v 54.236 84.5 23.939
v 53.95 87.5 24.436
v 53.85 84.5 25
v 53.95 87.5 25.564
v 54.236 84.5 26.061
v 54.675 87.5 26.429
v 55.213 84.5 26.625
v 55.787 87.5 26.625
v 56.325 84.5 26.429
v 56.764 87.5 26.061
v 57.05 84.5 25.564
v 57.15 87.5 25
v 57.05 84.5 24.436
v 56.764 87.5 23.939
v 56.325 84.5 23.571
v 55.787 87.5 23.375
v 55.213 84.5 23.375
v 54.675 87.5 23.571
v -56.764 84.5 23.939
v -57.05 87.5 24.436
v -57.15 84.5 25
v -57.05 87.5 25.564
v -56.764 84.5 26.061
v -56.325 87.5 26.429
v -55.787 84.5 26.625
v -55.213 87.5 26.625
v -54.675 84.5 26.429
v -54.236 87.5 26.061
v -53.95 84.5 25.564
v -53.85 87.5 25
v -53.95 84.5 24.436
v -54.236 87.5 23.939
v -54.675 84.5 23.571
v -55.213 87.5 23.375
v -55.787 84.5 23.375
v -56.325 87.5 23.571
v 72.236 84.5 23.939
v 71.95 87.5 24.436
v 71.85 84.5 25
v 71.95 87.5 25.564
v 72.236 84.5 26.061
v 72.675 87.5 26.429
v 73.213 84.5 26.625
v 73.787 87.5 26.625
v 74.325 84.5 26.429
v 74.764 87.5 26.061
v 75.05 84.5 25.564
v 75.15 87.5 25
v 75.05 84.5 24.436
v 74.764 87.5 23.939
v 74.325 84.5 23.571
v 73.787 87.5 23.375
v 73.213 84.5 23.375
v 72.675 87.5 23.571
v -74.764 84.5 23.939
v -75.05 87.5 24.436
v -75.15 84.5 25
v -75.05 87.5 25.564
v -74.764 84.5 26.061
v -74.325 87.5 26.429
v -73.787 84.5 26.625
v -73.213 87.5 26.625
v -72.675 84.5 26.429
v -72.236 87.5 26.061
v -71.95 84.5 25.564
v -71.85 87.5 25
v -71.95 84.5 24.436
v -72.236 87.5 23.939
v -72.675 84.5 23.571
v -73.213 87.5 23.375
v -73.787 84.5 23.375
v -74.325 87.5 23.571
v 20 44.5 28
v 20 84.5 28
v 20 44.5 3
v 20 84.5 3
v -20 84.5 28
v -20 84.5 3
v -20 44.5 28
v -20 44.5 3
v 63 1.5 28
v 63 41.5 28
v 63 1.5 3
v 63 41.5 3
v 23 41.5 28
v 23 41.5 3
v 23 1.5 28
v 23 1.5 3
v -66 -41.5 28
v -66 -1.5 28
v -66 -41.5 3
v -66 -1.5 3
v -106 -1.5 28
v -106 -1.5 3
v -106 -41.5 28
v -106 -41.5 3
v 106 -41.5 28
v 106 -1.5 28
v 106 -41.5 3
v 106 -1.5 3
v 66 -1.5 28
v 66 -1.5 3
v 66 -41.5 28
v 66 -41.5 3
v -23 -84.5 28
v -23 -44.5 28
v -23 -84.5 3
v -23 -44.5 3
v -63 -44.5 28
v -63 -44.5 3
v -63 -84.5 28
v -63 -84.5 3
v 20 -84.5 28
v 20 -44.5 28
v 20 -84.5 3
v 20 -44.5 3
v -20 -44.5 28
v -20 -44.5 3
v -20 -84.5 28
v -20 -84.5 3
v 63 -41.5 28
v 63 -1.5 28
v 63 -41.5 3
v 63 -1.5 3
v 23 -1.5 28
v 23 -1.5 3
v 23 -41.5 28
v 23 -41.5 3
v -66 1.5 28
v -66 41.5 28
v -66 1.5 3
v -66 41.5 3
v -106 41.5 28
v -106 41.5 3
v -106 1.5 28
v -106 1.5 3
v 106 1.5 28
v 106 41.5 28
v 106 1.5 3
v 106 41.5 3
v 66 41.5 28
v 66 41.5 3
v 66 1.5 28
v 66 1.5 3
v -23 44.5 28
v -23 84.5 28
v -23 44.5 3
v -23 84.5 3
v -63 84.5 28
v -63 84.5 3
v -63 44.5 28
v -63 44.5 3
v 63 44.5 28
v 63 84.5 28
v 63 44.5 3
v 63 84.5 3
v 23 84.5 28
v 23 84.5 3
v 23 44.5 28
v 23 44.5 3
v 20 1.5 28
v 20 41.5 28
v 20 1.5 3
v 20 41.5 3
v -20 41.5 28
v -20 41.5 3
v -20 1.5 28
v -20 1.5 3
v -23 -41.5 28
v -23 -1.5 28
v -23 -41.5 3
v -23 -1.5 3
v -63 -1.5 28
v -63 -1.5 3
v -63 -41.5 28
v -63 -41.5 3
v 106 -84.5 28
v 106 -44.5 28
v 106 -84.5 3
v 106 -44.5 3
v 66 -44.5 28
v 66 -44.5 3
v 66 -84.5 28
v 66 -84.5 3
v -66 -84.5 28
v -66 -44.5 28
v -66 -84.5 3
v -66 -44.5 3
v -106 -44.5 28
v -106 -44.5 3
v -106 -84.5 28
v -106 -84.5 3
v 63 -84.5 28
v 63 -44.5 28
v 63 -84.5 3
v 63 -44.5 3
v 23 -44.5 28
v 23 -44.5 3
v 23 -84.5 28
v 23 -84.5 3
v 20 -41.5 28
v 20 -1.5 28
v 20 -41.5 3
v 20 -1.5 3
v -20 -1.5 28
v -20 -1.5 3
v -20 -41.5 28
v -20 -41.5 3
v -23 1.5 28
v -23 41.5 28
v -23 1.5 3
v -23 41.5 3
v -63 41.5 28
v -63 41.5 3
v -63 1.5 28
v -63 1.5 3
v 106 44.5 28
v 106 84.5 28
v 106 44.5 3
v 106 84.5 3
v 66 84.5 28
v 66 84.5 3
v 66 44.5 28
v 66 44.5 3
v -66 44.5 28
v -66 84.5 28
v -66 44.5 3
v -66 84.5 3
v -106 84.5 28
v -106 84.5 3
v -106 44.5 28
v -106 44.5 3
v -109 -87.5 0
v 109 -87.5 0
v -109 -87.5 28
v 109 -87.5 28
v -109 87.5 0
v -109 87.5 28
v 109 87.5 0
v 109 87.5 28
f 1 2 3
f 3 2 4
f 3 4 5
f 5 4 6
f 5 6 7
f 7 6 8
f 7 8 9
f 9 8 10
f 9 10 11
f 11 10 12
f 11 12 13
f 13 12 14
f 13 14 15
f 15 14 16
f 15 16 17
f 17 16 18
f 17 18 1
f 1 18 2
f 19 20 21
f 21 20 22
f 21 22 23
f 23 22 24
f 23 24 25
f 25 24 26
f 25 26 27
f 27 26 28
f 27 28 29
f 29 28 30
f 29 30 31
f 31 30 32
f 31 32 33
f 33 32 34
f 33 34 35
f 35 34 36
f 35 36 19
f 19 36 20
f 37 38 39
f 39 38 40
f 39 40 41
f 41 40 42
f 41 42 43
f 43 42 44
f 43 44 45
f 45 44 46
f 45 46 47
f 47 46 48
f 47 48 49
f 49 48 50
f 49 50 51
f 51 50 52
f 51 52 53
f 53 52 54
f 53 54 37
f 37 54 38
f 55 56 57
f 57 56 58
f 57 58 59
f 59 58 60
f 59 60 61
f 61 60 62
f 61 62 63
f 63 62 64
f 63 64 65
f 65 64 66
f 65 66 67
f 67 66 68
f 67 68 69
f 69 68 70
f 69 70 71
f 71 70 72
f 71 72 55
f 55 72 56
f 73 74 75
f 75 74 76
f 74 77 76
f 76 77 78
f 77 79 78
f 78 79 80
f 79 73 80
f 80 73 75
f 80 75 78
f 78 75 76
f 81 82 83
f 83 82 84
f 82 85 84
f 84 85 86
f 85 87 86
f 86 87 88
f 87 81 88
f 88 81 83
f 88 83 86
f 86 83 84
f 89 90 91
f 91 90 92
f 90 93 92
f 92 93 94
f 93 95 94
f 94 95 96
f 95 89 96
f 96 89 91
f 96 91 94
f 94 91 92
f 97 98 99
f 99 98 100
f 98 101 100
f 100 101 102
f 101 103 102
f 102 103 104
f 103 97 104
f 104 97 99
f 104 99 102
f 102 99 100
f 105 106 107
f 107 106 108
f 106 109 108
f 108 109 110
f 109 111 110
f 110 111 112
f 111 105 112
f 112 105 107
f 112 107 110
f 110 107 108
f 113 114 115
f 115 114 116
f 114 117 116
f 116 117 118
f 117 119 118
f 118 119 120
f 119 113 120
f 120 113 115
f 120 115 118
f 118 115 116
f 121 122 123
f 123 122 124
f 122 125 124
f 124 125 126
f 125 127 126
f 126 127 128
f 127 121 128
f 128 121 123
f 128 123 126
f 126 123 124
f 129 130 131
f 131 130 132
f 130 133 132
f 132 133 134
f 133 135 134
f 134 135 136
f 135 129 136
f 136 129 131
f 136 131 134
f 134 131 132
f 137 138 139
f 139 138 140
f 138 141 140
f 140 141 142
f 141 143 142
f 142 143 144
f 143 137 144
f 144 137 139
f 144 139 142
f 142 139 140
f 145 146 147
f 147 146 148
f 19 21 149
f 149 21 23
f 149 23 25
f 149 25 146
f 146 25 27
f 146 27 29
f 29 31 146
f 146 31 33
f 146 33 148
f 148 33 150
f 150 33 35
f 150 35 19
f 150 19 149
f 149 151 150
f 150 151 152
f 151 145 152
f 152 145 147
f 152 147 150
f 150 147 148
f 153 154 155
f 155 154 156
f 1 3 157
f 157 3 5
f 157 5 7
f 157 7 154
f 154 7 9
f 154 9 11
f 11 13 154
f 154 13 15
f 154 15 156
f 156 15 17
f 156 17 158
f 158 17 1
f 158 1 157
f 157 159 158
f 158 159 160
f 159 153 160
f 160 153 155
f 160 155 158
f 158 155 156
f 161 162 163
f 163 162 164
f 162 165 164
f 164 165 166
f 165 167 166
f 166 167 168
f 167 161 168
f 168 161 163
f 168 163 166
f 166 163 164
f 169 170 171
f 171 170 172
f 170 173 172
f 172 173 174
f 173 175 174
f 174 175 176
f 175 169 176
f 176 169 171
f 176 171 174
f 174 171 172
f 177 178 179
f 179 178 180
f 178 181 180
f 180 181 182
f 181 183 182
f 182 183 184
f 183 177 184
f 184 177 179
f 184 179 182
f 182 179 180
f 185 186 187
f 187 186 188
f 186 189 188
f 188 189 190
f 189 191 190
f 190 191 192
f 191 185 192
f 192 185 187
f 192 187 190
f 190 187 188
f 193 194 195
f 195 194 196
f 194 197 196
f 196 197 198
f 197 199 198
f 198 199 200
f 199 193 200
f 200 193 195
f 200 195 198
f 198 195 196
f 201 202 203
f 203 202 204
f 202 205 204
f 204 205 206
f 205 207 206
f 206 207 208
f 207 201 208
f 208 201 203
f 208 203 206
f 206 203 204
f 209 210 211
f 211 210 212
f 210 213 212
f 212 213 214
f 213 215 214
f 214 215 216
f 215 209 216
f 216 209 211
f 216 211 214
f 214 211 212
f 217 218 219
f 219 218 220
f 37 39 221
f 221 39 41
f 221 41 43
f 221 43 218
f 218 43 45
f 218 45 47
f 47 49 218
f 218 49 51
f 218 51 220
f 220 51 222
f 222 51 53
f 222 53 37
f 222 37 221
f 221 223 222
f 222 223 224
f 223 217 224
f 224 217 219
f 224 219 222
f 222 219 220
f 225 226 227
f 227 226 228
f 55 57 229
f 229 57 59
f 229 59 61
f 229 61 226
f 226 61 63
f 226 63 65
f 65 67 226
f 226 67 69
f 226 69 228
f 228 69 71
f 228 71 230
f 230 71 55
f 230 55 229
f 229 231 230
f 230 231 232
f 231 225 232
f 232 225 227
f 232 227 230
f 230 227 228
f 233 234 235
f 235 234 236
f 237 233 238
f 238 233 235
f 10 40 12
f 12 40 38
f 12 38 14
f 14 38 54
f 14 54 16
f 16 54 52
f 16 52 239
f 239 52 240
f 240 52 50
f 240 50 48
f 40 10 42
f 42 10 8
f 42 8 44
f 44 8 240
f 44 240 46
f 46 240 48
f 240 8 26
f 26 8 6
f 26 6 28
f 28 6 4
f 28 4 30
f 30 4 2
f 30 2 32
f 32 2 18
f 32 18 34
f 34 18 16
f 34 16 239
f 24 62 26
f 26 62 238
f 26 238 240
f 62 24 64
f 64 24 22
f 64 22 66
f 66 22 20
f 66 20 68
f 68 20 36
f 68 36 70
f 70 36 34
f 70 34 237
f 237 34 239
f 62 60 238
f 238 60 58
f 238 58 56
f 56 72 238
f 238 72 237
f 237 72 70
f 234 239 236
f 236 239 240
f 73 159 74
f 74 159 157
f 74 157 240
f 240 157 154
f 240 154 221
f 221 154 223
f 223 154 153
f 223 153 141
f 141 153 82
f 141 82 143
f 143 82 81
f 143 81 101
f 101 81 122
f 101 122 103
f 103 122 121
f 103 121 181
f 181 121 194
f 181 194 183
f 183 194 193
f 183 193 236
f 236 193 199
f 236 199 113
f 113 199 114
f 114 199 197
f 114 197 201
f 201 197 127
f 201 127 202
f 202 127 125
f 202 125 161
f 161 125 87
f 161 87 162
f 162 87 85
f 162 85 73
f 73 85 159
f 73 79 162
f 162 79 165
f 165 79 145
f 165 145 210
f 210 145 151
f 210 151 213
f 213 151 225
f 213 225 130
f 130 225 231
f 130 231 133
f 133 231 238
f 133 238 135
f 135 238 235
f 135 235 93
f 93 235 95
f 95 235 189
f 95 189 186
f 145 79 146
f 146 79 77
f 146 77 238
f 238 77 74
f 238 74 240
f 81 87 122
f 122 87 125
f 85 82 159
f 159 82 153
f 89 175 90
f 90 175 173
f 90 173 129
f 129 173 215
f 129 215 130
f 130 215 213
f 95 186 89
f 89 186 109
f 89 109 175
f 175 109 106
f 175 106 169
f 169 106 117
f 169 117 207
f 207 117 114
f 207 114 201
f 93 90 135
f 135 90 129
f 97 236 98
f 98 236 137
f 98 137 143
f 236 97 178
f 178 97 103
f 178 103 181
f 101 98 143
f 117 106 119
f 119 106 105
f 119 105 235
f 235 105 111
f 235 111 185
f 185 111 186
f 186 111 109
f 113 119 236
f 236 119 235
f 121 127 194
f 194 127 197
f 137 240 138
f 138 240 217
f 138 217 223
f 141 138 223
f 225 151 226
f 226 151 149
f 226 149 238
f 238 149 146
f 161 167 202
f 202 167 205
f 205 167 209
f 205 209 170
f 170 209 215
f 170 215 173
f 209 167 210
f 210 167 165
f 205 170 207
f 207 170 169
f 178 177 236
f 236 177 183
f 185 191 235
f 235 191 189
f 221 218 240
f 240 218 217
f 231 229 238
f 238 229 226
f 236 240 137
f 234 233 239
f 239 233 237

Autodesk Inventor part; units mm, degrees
ref_plane "YZ Plane" through (0, 0, 0) normal (1, 0, 0) x (0, 1, 0)
ref_plane "XZ Plane" through (0, 0, 0) normal (0, 1, 0) x (-1, 0, 0)
ref_plane "XY Plane" through (0, 0, 0) normal (0, 0, 1) x (1, 0, 0)
sketch "Sketch1" plane through (0, 0, 0) normal (0, 0, 1) x (1, 0, 0)
  line L0 (-109, -87.5) -> (109, -87.5)
  line L1 (109, -87.5) -> (109, 87.5)
  line L2 (109, 87.5) -> (-109, 87.5)
  line L3 (-109, 87.5) -> (-109, -87.5)
  line L4 (-109, -87.5) -> (109, 87.5) construction
  line L5 (109, -87.5) -> (-109, 87.5) construction
  point P0 (0, 0)
  dimension "d0" = 218
  dimension "d1" = 175
extrude "Extrusion1" add sketch "Sketch1" along normal blind 28
sketch "Sketch2" plane through (0, 0, 28) normal (0, 0, 1) x (1, 0, 0)
  line L0 (-106, 84.5) -> (-66, 84.5)
  line L1 (-66, 84.5) -> (-66, 44.5)
  line L2 (-66, 44.5) -> (-106, 44.5)
  line L3 (-106, 44.5) -> (-106, 84.5)
  line L4 (-106, 84.5) -> (-66, 44.5) construction
  line L5 (-66, 84.5) -> (-106, 44.5) construction
  line L6 (109, 87.5) -> (-109, 87.5) projected
  line L7 (-109, 87.5) -> (-109, -87.5) projected
  line L8 (-63, 84.5) -> (-23, 84.5)
  line L9 (-23, 84.5) -> (-23, 44.5)
  line L10 (-23, 44.5) -> (-63, 44.5)
  line L11 (-63, 44.5) -> (-63, 84.5)
  line L12 (-63, 84.5) -> (-23, 44.5) construction
  line L13 (-23, 84.5) -> (-63, 44.5) construction
  line L14 (-20, 84.5) -> (20, 84.5)
  line L15 (20, 84.5) -> (20, 44.5)
  line L16 (20, 44.5) -> (-20, 44.5)
  line L17 (-20, 44.5) -> (-20, 84.5)
  line L18 (-20, 84.5) -> (20, 44.5) construction
  line L19 (20, 84.5) -> (-20, 44.5) construction
  line L20 (23, 84.5) -> (63, 84.5)
  line L21 (63, 84.5) -> (63, 44.5)
  line L22 (63, 44.5) -> (23, 44.5)
  line L23 (23, 44.5) -> (23, 84.5)
  line L24 (23, 84.5) -> (63, 44.5) construction
  line L25 (63, 84.5) -> (23, 44.5) construction
  line L26 (66, 84.5) -> (106, 84.5)
  line L27 (106, 84.5) -> (106, 44.5)
  line L28 (106, 44.5) -> (66, 44.5)
  line L29 (66, 44.5) -> (66, 84.5)
  line L30 (66, 84.5) -> (106, 44.5) construction
  line L31 (106, 84.5) -> (66, 44.5) construction
  line L32 (-106, 41.5) -> (-66, 41.5)
  line L33 (-66, 41.5) -> (-66, 1.5)
  line L34 (-66, 1.5) -> (-106, 1.5)
  line L35 (-106, 1.5) -> (-106, 41.5)
  line L36 (-106, 41.5) -> (-66, 1.5) construction
  line L37 (-66, 41.5) -> (-106, 1.5) construction
  line L38 (-63, 41.5) -> (-23, 41.5)
  line L39 (-23, 41.5) -> (-23, 1.5)
  line L40 (-23, 1.5) -> (-63, 1.5)
  line L41 (-63, 1.5) -> (-63, 41.5)
  line L42 (-63, 41.5) -> (-23, 1.5) construction
  line L43 (-23, 41.5) -> (-63, 1.5) construction
  line L44 (-20, 41.5) -> (20, 41.5)
  line L45 (20, 41.5) -> (20, 1.5)
  line L46 (20, 1.5) -> (-20, 1.5)
  line L47 (-20, 1.5) -> (-20, 41.5)
  line L48 (-20, 41.5) -> (20, 1.5) construction
  line L49 (20, 41.5) -> (-20, 1.5) construction
  line L50 (23, 41.5) -> (63, 41.5)
  line L51 (63, 41.5) -> (63, 1.5)
  line L52 (63, 1.5) -> (23, 1.5)
  line L53 (23, 1.5) -> (23, 41.5)
  line L54 (23, 41.5) -> (63, 1.5) construction
  line L55 (63, 41.5) -> (23, 1.5) construction
  line L56 (66, 41.5) -> (106, 41.5)
  line L57 (106, 41.5) -> (106, 1.5)
  line L58 (106, 1.5) -> (66, 1.5)
  line L59 (66, 1.5) -> (66, 41.5)
  line L60 (66, 41.5) -> (106, 1.5) construction
  line L61 (106, 41.5) -> (66, 1.5) construction
  line L62 (-106, -1.5) -> (-66, -1.5)
  line L63 (-66, -1.5) -> (-66, -41.5)
  line L64 (-66, -41.5) -> (-106, -41.5)
  line L65 (-106, -41.5) -> (-106, -1.5)
  line L66 (-106, -1.5) -> (-66, -41.5) construction
  line L67 (-66, -1.5) -> (-106, -41.5) construction
  line L68 (-63, -1.5) -> (-23, -1.5)
  line L69 (-23, -1.5) -> (-23, -41.5)
  line L70 (-23, -41.5) -> (-63, -41.5)
  line L71 (-63, -41.5) -> (-63, -1.5)
  line L72 (-63, -1.5) -> (-23, -41.5) construction
  line L73 (-23, -1.5) -> (-63, -41.5) construction
  line L74 (-20, -1.5) -> (20, -1.5)
  line L75 (20, -1.5) -> (20, -41.5)
  line L76 (20, -41.5) -> (-20, -41.5)
  line L77 (-20, -41.5) -> (-20, -1.5)
  line L78 (-20, -1.5) -> (20, -41.5) construction
  line L79 (20, -1.5) -> (-20, -41.5) construction
  line L80 (23, -1.5) -> (63, -1.5)
  line L81 (63, -1.5) -> (63, -41.5)
  line L82 (63, -41.5) -> (23, -41.5)
  line L83 (23, -41.5) -> (23, -1.5)
  line L84 (23, -1.5) -> (63, -41.5) construction
  line L85 (63, -1.5) -> (23, -41.5) construction
  line L86 (66, -1.5) -> (106, -1.5)
  line L87 (106, -1.5) -> (106, -41.5)
  line L88 (106, -41.5) -> (66, -41.5)
  line L89 (66, -41.5) -> (66, -1.5)
  line L90 (66, -1.5) -> (106, -41.5) construction
  line L91 (106, -1.5) -> (66, -41.5) construction
  line L92 (-106, -44.5) -> (-66, -44.5)
  line L93 (-66, -44.5) -> (-66, -84.5)
  line L94 (-66, -84.5) -> (-106, -84.5)
  line L95 (-106, -84.5) -> (-106, -44.5)
  line L96 (-106, -44.5) -> (-66, -84.5) construction
  line L97 (-66, -44.5) -> (-106, -84.5) construction
  line L98 (-63, -44.5) -> (-23, -44.5)
  line L99 (-23, -44.5) -> (-23, -84.5)
  line L100 (-23, -84.5) -> (-63, -84.5)
  line L101 (-63, -84.5) -> (-63, -44.5)
  line L102 (-63, -44.5) -> (-23, -84.5) construction
  line L103 (-23, -44.5) -> (-63, -84.5) construction
  line L104 (-20, -44.5) -> (20, -44.5)
  line L105 (20, -44.5) -> (20, -84.5)
  line L106 (20, -84.5) -> (-20, -84.5)
  line L107 (-20, -84.5) -> (-20, -44.5)
  line L108 (-20, -44.5) -> (20, -84.5) construction
  line L109 (20, -44.5) -> (-20, -84.5) construction
  line L110 (23, -44.5) -> (63, -44.5)
  line L111 (63, -44.5) -> (63, -84.5)
  line L112 (63, -84.5) -> (23, -84.5)
  line L113 (23, -84.5) -> (23, -44.5)
  line L114 (23, -44.5) -> (63, -84.5) construction
  line L115 (63, -44.5) -> (23, -84.5) construction
  line L116 (66, -44.5) -> (106, -44.5)
  line L117 (106, -44.5) -> (106, -84.5)
  line L118 (106, -84.5) -> (66, -84.5)
  line L119 (66, -84.5) -> (66, -44.5)
  line L120 (66, -44.5) -> (106, -84.5) construction
  line L121 (106, -44.5) -> (66, -84.5) construction
  point P0 (0, 0)
  point P1 (-86, 64.5)
  point P2 (-43, 64.5)
  point P3 (0, 64.5)
  point P4 (43, 64.5)
  point P5 (86, 64.5)
  point P6 (-86, 21.5)
  point P7 (-43, 21.5)
  point P8 (0, 21.5)
  point P9 (43, 21.5)
  point P10 (86, 21.5)
  point P11 (-86, -21.5)
  point P12 (-43, -21.5)
  point P13 (0, -21.5)
  point P14 (43, -21.5)
  point P15 (86, -21.5)
  point P16 (-86, -64.5)
  point P17 (-43, -64.5)
  point P18 (0, -64.5)
  point P19 (43, -64.5)
  point P20 (86, -64.5)
  dimension "d4" = 40
  dimension "d5" = 3
  dimension "d6" = 3
  dimension "d7" = 40
  dimension "d10" = 43
  dimension "d13" = 43
extrude "Extrusion2" cut sketch "Sketch2" against normal blind 25
sketch "Sketch3" plane through (-109, 87.5, 0) normal (0, 1, 0) x (1, 0, 0)
  line L0 (46, -28) -> (46, -3) construction
  line L1 (43, -28) -> (43, -3) construction
  line L2 (43, -28) -> (43, -3) projected
  line L3 (43, -25) -> (46, -25) construction
  line L4 (46, -28) -> (46, -3) projected
  line L5 (218, -28) -> (0, -28) projected
  circle A0 centre (53.5, -25) radius 1.65
  circle A1 centre (35.5, -25) radius 1.65
  line L6 (172, -28) -> (172, -3) construction
  line L7 (175, -28) -> (175, -3) construction
  line L8 (172, -28) -> (172, -3) projected
  line L9 (172, -25) -> (175, -25) construction
  circle A2 centre (182.5, -25) radius 1.65
  circle A3 centre (164.5, -25) radius 1.65
  point P0 (109, 0)
  point P1 (44.5, -25)
  point P2 (173.5, -25)
  dimension "d20" = 3
  dimension "d21" = 3.3
  dimension "d22" = 9
  dimension "d23" = 3.3
  dimension "d24" = 9
  dimension "d25" = 3.3
  dimension "d27" = 9
  dimension "d30" = 3
  dimension "d31" = 3.3
  dimension "d32" = 9
extrude "Extrusion3" cut sketch "Sketch3" against normal blind 10
equation "\"d0\" = box_length"
equation "\"d1\" = box_width"
equation "\"d2\" = hole_height + wall"
equation "\"d4\" = hole"
equation "\"d5\" = wall"
equation "\"d6\" = wall"
equation "\"d7\" = hole"
equation "\"d10\" = hole + wall"
equation "\"d13\" = hole + wall"
equation "\"d16\" = hole_height"
equation "\"d23\" = d21"
equation "\"d24\" = d22"
equation "\"d25\" = d21"
equation "\"d27\" = d22"
equation "\"d31\" = d25"
equation "\"d32\" = d27"
equation "\"hole\" = 40"
equation "\"wall\" = 3"
equation "\"hole_height\" = 25"
equation "\"box_length\" = 218"
equation "\"box_width\" = 175"
properties part number "RatPelletBox_v02"
